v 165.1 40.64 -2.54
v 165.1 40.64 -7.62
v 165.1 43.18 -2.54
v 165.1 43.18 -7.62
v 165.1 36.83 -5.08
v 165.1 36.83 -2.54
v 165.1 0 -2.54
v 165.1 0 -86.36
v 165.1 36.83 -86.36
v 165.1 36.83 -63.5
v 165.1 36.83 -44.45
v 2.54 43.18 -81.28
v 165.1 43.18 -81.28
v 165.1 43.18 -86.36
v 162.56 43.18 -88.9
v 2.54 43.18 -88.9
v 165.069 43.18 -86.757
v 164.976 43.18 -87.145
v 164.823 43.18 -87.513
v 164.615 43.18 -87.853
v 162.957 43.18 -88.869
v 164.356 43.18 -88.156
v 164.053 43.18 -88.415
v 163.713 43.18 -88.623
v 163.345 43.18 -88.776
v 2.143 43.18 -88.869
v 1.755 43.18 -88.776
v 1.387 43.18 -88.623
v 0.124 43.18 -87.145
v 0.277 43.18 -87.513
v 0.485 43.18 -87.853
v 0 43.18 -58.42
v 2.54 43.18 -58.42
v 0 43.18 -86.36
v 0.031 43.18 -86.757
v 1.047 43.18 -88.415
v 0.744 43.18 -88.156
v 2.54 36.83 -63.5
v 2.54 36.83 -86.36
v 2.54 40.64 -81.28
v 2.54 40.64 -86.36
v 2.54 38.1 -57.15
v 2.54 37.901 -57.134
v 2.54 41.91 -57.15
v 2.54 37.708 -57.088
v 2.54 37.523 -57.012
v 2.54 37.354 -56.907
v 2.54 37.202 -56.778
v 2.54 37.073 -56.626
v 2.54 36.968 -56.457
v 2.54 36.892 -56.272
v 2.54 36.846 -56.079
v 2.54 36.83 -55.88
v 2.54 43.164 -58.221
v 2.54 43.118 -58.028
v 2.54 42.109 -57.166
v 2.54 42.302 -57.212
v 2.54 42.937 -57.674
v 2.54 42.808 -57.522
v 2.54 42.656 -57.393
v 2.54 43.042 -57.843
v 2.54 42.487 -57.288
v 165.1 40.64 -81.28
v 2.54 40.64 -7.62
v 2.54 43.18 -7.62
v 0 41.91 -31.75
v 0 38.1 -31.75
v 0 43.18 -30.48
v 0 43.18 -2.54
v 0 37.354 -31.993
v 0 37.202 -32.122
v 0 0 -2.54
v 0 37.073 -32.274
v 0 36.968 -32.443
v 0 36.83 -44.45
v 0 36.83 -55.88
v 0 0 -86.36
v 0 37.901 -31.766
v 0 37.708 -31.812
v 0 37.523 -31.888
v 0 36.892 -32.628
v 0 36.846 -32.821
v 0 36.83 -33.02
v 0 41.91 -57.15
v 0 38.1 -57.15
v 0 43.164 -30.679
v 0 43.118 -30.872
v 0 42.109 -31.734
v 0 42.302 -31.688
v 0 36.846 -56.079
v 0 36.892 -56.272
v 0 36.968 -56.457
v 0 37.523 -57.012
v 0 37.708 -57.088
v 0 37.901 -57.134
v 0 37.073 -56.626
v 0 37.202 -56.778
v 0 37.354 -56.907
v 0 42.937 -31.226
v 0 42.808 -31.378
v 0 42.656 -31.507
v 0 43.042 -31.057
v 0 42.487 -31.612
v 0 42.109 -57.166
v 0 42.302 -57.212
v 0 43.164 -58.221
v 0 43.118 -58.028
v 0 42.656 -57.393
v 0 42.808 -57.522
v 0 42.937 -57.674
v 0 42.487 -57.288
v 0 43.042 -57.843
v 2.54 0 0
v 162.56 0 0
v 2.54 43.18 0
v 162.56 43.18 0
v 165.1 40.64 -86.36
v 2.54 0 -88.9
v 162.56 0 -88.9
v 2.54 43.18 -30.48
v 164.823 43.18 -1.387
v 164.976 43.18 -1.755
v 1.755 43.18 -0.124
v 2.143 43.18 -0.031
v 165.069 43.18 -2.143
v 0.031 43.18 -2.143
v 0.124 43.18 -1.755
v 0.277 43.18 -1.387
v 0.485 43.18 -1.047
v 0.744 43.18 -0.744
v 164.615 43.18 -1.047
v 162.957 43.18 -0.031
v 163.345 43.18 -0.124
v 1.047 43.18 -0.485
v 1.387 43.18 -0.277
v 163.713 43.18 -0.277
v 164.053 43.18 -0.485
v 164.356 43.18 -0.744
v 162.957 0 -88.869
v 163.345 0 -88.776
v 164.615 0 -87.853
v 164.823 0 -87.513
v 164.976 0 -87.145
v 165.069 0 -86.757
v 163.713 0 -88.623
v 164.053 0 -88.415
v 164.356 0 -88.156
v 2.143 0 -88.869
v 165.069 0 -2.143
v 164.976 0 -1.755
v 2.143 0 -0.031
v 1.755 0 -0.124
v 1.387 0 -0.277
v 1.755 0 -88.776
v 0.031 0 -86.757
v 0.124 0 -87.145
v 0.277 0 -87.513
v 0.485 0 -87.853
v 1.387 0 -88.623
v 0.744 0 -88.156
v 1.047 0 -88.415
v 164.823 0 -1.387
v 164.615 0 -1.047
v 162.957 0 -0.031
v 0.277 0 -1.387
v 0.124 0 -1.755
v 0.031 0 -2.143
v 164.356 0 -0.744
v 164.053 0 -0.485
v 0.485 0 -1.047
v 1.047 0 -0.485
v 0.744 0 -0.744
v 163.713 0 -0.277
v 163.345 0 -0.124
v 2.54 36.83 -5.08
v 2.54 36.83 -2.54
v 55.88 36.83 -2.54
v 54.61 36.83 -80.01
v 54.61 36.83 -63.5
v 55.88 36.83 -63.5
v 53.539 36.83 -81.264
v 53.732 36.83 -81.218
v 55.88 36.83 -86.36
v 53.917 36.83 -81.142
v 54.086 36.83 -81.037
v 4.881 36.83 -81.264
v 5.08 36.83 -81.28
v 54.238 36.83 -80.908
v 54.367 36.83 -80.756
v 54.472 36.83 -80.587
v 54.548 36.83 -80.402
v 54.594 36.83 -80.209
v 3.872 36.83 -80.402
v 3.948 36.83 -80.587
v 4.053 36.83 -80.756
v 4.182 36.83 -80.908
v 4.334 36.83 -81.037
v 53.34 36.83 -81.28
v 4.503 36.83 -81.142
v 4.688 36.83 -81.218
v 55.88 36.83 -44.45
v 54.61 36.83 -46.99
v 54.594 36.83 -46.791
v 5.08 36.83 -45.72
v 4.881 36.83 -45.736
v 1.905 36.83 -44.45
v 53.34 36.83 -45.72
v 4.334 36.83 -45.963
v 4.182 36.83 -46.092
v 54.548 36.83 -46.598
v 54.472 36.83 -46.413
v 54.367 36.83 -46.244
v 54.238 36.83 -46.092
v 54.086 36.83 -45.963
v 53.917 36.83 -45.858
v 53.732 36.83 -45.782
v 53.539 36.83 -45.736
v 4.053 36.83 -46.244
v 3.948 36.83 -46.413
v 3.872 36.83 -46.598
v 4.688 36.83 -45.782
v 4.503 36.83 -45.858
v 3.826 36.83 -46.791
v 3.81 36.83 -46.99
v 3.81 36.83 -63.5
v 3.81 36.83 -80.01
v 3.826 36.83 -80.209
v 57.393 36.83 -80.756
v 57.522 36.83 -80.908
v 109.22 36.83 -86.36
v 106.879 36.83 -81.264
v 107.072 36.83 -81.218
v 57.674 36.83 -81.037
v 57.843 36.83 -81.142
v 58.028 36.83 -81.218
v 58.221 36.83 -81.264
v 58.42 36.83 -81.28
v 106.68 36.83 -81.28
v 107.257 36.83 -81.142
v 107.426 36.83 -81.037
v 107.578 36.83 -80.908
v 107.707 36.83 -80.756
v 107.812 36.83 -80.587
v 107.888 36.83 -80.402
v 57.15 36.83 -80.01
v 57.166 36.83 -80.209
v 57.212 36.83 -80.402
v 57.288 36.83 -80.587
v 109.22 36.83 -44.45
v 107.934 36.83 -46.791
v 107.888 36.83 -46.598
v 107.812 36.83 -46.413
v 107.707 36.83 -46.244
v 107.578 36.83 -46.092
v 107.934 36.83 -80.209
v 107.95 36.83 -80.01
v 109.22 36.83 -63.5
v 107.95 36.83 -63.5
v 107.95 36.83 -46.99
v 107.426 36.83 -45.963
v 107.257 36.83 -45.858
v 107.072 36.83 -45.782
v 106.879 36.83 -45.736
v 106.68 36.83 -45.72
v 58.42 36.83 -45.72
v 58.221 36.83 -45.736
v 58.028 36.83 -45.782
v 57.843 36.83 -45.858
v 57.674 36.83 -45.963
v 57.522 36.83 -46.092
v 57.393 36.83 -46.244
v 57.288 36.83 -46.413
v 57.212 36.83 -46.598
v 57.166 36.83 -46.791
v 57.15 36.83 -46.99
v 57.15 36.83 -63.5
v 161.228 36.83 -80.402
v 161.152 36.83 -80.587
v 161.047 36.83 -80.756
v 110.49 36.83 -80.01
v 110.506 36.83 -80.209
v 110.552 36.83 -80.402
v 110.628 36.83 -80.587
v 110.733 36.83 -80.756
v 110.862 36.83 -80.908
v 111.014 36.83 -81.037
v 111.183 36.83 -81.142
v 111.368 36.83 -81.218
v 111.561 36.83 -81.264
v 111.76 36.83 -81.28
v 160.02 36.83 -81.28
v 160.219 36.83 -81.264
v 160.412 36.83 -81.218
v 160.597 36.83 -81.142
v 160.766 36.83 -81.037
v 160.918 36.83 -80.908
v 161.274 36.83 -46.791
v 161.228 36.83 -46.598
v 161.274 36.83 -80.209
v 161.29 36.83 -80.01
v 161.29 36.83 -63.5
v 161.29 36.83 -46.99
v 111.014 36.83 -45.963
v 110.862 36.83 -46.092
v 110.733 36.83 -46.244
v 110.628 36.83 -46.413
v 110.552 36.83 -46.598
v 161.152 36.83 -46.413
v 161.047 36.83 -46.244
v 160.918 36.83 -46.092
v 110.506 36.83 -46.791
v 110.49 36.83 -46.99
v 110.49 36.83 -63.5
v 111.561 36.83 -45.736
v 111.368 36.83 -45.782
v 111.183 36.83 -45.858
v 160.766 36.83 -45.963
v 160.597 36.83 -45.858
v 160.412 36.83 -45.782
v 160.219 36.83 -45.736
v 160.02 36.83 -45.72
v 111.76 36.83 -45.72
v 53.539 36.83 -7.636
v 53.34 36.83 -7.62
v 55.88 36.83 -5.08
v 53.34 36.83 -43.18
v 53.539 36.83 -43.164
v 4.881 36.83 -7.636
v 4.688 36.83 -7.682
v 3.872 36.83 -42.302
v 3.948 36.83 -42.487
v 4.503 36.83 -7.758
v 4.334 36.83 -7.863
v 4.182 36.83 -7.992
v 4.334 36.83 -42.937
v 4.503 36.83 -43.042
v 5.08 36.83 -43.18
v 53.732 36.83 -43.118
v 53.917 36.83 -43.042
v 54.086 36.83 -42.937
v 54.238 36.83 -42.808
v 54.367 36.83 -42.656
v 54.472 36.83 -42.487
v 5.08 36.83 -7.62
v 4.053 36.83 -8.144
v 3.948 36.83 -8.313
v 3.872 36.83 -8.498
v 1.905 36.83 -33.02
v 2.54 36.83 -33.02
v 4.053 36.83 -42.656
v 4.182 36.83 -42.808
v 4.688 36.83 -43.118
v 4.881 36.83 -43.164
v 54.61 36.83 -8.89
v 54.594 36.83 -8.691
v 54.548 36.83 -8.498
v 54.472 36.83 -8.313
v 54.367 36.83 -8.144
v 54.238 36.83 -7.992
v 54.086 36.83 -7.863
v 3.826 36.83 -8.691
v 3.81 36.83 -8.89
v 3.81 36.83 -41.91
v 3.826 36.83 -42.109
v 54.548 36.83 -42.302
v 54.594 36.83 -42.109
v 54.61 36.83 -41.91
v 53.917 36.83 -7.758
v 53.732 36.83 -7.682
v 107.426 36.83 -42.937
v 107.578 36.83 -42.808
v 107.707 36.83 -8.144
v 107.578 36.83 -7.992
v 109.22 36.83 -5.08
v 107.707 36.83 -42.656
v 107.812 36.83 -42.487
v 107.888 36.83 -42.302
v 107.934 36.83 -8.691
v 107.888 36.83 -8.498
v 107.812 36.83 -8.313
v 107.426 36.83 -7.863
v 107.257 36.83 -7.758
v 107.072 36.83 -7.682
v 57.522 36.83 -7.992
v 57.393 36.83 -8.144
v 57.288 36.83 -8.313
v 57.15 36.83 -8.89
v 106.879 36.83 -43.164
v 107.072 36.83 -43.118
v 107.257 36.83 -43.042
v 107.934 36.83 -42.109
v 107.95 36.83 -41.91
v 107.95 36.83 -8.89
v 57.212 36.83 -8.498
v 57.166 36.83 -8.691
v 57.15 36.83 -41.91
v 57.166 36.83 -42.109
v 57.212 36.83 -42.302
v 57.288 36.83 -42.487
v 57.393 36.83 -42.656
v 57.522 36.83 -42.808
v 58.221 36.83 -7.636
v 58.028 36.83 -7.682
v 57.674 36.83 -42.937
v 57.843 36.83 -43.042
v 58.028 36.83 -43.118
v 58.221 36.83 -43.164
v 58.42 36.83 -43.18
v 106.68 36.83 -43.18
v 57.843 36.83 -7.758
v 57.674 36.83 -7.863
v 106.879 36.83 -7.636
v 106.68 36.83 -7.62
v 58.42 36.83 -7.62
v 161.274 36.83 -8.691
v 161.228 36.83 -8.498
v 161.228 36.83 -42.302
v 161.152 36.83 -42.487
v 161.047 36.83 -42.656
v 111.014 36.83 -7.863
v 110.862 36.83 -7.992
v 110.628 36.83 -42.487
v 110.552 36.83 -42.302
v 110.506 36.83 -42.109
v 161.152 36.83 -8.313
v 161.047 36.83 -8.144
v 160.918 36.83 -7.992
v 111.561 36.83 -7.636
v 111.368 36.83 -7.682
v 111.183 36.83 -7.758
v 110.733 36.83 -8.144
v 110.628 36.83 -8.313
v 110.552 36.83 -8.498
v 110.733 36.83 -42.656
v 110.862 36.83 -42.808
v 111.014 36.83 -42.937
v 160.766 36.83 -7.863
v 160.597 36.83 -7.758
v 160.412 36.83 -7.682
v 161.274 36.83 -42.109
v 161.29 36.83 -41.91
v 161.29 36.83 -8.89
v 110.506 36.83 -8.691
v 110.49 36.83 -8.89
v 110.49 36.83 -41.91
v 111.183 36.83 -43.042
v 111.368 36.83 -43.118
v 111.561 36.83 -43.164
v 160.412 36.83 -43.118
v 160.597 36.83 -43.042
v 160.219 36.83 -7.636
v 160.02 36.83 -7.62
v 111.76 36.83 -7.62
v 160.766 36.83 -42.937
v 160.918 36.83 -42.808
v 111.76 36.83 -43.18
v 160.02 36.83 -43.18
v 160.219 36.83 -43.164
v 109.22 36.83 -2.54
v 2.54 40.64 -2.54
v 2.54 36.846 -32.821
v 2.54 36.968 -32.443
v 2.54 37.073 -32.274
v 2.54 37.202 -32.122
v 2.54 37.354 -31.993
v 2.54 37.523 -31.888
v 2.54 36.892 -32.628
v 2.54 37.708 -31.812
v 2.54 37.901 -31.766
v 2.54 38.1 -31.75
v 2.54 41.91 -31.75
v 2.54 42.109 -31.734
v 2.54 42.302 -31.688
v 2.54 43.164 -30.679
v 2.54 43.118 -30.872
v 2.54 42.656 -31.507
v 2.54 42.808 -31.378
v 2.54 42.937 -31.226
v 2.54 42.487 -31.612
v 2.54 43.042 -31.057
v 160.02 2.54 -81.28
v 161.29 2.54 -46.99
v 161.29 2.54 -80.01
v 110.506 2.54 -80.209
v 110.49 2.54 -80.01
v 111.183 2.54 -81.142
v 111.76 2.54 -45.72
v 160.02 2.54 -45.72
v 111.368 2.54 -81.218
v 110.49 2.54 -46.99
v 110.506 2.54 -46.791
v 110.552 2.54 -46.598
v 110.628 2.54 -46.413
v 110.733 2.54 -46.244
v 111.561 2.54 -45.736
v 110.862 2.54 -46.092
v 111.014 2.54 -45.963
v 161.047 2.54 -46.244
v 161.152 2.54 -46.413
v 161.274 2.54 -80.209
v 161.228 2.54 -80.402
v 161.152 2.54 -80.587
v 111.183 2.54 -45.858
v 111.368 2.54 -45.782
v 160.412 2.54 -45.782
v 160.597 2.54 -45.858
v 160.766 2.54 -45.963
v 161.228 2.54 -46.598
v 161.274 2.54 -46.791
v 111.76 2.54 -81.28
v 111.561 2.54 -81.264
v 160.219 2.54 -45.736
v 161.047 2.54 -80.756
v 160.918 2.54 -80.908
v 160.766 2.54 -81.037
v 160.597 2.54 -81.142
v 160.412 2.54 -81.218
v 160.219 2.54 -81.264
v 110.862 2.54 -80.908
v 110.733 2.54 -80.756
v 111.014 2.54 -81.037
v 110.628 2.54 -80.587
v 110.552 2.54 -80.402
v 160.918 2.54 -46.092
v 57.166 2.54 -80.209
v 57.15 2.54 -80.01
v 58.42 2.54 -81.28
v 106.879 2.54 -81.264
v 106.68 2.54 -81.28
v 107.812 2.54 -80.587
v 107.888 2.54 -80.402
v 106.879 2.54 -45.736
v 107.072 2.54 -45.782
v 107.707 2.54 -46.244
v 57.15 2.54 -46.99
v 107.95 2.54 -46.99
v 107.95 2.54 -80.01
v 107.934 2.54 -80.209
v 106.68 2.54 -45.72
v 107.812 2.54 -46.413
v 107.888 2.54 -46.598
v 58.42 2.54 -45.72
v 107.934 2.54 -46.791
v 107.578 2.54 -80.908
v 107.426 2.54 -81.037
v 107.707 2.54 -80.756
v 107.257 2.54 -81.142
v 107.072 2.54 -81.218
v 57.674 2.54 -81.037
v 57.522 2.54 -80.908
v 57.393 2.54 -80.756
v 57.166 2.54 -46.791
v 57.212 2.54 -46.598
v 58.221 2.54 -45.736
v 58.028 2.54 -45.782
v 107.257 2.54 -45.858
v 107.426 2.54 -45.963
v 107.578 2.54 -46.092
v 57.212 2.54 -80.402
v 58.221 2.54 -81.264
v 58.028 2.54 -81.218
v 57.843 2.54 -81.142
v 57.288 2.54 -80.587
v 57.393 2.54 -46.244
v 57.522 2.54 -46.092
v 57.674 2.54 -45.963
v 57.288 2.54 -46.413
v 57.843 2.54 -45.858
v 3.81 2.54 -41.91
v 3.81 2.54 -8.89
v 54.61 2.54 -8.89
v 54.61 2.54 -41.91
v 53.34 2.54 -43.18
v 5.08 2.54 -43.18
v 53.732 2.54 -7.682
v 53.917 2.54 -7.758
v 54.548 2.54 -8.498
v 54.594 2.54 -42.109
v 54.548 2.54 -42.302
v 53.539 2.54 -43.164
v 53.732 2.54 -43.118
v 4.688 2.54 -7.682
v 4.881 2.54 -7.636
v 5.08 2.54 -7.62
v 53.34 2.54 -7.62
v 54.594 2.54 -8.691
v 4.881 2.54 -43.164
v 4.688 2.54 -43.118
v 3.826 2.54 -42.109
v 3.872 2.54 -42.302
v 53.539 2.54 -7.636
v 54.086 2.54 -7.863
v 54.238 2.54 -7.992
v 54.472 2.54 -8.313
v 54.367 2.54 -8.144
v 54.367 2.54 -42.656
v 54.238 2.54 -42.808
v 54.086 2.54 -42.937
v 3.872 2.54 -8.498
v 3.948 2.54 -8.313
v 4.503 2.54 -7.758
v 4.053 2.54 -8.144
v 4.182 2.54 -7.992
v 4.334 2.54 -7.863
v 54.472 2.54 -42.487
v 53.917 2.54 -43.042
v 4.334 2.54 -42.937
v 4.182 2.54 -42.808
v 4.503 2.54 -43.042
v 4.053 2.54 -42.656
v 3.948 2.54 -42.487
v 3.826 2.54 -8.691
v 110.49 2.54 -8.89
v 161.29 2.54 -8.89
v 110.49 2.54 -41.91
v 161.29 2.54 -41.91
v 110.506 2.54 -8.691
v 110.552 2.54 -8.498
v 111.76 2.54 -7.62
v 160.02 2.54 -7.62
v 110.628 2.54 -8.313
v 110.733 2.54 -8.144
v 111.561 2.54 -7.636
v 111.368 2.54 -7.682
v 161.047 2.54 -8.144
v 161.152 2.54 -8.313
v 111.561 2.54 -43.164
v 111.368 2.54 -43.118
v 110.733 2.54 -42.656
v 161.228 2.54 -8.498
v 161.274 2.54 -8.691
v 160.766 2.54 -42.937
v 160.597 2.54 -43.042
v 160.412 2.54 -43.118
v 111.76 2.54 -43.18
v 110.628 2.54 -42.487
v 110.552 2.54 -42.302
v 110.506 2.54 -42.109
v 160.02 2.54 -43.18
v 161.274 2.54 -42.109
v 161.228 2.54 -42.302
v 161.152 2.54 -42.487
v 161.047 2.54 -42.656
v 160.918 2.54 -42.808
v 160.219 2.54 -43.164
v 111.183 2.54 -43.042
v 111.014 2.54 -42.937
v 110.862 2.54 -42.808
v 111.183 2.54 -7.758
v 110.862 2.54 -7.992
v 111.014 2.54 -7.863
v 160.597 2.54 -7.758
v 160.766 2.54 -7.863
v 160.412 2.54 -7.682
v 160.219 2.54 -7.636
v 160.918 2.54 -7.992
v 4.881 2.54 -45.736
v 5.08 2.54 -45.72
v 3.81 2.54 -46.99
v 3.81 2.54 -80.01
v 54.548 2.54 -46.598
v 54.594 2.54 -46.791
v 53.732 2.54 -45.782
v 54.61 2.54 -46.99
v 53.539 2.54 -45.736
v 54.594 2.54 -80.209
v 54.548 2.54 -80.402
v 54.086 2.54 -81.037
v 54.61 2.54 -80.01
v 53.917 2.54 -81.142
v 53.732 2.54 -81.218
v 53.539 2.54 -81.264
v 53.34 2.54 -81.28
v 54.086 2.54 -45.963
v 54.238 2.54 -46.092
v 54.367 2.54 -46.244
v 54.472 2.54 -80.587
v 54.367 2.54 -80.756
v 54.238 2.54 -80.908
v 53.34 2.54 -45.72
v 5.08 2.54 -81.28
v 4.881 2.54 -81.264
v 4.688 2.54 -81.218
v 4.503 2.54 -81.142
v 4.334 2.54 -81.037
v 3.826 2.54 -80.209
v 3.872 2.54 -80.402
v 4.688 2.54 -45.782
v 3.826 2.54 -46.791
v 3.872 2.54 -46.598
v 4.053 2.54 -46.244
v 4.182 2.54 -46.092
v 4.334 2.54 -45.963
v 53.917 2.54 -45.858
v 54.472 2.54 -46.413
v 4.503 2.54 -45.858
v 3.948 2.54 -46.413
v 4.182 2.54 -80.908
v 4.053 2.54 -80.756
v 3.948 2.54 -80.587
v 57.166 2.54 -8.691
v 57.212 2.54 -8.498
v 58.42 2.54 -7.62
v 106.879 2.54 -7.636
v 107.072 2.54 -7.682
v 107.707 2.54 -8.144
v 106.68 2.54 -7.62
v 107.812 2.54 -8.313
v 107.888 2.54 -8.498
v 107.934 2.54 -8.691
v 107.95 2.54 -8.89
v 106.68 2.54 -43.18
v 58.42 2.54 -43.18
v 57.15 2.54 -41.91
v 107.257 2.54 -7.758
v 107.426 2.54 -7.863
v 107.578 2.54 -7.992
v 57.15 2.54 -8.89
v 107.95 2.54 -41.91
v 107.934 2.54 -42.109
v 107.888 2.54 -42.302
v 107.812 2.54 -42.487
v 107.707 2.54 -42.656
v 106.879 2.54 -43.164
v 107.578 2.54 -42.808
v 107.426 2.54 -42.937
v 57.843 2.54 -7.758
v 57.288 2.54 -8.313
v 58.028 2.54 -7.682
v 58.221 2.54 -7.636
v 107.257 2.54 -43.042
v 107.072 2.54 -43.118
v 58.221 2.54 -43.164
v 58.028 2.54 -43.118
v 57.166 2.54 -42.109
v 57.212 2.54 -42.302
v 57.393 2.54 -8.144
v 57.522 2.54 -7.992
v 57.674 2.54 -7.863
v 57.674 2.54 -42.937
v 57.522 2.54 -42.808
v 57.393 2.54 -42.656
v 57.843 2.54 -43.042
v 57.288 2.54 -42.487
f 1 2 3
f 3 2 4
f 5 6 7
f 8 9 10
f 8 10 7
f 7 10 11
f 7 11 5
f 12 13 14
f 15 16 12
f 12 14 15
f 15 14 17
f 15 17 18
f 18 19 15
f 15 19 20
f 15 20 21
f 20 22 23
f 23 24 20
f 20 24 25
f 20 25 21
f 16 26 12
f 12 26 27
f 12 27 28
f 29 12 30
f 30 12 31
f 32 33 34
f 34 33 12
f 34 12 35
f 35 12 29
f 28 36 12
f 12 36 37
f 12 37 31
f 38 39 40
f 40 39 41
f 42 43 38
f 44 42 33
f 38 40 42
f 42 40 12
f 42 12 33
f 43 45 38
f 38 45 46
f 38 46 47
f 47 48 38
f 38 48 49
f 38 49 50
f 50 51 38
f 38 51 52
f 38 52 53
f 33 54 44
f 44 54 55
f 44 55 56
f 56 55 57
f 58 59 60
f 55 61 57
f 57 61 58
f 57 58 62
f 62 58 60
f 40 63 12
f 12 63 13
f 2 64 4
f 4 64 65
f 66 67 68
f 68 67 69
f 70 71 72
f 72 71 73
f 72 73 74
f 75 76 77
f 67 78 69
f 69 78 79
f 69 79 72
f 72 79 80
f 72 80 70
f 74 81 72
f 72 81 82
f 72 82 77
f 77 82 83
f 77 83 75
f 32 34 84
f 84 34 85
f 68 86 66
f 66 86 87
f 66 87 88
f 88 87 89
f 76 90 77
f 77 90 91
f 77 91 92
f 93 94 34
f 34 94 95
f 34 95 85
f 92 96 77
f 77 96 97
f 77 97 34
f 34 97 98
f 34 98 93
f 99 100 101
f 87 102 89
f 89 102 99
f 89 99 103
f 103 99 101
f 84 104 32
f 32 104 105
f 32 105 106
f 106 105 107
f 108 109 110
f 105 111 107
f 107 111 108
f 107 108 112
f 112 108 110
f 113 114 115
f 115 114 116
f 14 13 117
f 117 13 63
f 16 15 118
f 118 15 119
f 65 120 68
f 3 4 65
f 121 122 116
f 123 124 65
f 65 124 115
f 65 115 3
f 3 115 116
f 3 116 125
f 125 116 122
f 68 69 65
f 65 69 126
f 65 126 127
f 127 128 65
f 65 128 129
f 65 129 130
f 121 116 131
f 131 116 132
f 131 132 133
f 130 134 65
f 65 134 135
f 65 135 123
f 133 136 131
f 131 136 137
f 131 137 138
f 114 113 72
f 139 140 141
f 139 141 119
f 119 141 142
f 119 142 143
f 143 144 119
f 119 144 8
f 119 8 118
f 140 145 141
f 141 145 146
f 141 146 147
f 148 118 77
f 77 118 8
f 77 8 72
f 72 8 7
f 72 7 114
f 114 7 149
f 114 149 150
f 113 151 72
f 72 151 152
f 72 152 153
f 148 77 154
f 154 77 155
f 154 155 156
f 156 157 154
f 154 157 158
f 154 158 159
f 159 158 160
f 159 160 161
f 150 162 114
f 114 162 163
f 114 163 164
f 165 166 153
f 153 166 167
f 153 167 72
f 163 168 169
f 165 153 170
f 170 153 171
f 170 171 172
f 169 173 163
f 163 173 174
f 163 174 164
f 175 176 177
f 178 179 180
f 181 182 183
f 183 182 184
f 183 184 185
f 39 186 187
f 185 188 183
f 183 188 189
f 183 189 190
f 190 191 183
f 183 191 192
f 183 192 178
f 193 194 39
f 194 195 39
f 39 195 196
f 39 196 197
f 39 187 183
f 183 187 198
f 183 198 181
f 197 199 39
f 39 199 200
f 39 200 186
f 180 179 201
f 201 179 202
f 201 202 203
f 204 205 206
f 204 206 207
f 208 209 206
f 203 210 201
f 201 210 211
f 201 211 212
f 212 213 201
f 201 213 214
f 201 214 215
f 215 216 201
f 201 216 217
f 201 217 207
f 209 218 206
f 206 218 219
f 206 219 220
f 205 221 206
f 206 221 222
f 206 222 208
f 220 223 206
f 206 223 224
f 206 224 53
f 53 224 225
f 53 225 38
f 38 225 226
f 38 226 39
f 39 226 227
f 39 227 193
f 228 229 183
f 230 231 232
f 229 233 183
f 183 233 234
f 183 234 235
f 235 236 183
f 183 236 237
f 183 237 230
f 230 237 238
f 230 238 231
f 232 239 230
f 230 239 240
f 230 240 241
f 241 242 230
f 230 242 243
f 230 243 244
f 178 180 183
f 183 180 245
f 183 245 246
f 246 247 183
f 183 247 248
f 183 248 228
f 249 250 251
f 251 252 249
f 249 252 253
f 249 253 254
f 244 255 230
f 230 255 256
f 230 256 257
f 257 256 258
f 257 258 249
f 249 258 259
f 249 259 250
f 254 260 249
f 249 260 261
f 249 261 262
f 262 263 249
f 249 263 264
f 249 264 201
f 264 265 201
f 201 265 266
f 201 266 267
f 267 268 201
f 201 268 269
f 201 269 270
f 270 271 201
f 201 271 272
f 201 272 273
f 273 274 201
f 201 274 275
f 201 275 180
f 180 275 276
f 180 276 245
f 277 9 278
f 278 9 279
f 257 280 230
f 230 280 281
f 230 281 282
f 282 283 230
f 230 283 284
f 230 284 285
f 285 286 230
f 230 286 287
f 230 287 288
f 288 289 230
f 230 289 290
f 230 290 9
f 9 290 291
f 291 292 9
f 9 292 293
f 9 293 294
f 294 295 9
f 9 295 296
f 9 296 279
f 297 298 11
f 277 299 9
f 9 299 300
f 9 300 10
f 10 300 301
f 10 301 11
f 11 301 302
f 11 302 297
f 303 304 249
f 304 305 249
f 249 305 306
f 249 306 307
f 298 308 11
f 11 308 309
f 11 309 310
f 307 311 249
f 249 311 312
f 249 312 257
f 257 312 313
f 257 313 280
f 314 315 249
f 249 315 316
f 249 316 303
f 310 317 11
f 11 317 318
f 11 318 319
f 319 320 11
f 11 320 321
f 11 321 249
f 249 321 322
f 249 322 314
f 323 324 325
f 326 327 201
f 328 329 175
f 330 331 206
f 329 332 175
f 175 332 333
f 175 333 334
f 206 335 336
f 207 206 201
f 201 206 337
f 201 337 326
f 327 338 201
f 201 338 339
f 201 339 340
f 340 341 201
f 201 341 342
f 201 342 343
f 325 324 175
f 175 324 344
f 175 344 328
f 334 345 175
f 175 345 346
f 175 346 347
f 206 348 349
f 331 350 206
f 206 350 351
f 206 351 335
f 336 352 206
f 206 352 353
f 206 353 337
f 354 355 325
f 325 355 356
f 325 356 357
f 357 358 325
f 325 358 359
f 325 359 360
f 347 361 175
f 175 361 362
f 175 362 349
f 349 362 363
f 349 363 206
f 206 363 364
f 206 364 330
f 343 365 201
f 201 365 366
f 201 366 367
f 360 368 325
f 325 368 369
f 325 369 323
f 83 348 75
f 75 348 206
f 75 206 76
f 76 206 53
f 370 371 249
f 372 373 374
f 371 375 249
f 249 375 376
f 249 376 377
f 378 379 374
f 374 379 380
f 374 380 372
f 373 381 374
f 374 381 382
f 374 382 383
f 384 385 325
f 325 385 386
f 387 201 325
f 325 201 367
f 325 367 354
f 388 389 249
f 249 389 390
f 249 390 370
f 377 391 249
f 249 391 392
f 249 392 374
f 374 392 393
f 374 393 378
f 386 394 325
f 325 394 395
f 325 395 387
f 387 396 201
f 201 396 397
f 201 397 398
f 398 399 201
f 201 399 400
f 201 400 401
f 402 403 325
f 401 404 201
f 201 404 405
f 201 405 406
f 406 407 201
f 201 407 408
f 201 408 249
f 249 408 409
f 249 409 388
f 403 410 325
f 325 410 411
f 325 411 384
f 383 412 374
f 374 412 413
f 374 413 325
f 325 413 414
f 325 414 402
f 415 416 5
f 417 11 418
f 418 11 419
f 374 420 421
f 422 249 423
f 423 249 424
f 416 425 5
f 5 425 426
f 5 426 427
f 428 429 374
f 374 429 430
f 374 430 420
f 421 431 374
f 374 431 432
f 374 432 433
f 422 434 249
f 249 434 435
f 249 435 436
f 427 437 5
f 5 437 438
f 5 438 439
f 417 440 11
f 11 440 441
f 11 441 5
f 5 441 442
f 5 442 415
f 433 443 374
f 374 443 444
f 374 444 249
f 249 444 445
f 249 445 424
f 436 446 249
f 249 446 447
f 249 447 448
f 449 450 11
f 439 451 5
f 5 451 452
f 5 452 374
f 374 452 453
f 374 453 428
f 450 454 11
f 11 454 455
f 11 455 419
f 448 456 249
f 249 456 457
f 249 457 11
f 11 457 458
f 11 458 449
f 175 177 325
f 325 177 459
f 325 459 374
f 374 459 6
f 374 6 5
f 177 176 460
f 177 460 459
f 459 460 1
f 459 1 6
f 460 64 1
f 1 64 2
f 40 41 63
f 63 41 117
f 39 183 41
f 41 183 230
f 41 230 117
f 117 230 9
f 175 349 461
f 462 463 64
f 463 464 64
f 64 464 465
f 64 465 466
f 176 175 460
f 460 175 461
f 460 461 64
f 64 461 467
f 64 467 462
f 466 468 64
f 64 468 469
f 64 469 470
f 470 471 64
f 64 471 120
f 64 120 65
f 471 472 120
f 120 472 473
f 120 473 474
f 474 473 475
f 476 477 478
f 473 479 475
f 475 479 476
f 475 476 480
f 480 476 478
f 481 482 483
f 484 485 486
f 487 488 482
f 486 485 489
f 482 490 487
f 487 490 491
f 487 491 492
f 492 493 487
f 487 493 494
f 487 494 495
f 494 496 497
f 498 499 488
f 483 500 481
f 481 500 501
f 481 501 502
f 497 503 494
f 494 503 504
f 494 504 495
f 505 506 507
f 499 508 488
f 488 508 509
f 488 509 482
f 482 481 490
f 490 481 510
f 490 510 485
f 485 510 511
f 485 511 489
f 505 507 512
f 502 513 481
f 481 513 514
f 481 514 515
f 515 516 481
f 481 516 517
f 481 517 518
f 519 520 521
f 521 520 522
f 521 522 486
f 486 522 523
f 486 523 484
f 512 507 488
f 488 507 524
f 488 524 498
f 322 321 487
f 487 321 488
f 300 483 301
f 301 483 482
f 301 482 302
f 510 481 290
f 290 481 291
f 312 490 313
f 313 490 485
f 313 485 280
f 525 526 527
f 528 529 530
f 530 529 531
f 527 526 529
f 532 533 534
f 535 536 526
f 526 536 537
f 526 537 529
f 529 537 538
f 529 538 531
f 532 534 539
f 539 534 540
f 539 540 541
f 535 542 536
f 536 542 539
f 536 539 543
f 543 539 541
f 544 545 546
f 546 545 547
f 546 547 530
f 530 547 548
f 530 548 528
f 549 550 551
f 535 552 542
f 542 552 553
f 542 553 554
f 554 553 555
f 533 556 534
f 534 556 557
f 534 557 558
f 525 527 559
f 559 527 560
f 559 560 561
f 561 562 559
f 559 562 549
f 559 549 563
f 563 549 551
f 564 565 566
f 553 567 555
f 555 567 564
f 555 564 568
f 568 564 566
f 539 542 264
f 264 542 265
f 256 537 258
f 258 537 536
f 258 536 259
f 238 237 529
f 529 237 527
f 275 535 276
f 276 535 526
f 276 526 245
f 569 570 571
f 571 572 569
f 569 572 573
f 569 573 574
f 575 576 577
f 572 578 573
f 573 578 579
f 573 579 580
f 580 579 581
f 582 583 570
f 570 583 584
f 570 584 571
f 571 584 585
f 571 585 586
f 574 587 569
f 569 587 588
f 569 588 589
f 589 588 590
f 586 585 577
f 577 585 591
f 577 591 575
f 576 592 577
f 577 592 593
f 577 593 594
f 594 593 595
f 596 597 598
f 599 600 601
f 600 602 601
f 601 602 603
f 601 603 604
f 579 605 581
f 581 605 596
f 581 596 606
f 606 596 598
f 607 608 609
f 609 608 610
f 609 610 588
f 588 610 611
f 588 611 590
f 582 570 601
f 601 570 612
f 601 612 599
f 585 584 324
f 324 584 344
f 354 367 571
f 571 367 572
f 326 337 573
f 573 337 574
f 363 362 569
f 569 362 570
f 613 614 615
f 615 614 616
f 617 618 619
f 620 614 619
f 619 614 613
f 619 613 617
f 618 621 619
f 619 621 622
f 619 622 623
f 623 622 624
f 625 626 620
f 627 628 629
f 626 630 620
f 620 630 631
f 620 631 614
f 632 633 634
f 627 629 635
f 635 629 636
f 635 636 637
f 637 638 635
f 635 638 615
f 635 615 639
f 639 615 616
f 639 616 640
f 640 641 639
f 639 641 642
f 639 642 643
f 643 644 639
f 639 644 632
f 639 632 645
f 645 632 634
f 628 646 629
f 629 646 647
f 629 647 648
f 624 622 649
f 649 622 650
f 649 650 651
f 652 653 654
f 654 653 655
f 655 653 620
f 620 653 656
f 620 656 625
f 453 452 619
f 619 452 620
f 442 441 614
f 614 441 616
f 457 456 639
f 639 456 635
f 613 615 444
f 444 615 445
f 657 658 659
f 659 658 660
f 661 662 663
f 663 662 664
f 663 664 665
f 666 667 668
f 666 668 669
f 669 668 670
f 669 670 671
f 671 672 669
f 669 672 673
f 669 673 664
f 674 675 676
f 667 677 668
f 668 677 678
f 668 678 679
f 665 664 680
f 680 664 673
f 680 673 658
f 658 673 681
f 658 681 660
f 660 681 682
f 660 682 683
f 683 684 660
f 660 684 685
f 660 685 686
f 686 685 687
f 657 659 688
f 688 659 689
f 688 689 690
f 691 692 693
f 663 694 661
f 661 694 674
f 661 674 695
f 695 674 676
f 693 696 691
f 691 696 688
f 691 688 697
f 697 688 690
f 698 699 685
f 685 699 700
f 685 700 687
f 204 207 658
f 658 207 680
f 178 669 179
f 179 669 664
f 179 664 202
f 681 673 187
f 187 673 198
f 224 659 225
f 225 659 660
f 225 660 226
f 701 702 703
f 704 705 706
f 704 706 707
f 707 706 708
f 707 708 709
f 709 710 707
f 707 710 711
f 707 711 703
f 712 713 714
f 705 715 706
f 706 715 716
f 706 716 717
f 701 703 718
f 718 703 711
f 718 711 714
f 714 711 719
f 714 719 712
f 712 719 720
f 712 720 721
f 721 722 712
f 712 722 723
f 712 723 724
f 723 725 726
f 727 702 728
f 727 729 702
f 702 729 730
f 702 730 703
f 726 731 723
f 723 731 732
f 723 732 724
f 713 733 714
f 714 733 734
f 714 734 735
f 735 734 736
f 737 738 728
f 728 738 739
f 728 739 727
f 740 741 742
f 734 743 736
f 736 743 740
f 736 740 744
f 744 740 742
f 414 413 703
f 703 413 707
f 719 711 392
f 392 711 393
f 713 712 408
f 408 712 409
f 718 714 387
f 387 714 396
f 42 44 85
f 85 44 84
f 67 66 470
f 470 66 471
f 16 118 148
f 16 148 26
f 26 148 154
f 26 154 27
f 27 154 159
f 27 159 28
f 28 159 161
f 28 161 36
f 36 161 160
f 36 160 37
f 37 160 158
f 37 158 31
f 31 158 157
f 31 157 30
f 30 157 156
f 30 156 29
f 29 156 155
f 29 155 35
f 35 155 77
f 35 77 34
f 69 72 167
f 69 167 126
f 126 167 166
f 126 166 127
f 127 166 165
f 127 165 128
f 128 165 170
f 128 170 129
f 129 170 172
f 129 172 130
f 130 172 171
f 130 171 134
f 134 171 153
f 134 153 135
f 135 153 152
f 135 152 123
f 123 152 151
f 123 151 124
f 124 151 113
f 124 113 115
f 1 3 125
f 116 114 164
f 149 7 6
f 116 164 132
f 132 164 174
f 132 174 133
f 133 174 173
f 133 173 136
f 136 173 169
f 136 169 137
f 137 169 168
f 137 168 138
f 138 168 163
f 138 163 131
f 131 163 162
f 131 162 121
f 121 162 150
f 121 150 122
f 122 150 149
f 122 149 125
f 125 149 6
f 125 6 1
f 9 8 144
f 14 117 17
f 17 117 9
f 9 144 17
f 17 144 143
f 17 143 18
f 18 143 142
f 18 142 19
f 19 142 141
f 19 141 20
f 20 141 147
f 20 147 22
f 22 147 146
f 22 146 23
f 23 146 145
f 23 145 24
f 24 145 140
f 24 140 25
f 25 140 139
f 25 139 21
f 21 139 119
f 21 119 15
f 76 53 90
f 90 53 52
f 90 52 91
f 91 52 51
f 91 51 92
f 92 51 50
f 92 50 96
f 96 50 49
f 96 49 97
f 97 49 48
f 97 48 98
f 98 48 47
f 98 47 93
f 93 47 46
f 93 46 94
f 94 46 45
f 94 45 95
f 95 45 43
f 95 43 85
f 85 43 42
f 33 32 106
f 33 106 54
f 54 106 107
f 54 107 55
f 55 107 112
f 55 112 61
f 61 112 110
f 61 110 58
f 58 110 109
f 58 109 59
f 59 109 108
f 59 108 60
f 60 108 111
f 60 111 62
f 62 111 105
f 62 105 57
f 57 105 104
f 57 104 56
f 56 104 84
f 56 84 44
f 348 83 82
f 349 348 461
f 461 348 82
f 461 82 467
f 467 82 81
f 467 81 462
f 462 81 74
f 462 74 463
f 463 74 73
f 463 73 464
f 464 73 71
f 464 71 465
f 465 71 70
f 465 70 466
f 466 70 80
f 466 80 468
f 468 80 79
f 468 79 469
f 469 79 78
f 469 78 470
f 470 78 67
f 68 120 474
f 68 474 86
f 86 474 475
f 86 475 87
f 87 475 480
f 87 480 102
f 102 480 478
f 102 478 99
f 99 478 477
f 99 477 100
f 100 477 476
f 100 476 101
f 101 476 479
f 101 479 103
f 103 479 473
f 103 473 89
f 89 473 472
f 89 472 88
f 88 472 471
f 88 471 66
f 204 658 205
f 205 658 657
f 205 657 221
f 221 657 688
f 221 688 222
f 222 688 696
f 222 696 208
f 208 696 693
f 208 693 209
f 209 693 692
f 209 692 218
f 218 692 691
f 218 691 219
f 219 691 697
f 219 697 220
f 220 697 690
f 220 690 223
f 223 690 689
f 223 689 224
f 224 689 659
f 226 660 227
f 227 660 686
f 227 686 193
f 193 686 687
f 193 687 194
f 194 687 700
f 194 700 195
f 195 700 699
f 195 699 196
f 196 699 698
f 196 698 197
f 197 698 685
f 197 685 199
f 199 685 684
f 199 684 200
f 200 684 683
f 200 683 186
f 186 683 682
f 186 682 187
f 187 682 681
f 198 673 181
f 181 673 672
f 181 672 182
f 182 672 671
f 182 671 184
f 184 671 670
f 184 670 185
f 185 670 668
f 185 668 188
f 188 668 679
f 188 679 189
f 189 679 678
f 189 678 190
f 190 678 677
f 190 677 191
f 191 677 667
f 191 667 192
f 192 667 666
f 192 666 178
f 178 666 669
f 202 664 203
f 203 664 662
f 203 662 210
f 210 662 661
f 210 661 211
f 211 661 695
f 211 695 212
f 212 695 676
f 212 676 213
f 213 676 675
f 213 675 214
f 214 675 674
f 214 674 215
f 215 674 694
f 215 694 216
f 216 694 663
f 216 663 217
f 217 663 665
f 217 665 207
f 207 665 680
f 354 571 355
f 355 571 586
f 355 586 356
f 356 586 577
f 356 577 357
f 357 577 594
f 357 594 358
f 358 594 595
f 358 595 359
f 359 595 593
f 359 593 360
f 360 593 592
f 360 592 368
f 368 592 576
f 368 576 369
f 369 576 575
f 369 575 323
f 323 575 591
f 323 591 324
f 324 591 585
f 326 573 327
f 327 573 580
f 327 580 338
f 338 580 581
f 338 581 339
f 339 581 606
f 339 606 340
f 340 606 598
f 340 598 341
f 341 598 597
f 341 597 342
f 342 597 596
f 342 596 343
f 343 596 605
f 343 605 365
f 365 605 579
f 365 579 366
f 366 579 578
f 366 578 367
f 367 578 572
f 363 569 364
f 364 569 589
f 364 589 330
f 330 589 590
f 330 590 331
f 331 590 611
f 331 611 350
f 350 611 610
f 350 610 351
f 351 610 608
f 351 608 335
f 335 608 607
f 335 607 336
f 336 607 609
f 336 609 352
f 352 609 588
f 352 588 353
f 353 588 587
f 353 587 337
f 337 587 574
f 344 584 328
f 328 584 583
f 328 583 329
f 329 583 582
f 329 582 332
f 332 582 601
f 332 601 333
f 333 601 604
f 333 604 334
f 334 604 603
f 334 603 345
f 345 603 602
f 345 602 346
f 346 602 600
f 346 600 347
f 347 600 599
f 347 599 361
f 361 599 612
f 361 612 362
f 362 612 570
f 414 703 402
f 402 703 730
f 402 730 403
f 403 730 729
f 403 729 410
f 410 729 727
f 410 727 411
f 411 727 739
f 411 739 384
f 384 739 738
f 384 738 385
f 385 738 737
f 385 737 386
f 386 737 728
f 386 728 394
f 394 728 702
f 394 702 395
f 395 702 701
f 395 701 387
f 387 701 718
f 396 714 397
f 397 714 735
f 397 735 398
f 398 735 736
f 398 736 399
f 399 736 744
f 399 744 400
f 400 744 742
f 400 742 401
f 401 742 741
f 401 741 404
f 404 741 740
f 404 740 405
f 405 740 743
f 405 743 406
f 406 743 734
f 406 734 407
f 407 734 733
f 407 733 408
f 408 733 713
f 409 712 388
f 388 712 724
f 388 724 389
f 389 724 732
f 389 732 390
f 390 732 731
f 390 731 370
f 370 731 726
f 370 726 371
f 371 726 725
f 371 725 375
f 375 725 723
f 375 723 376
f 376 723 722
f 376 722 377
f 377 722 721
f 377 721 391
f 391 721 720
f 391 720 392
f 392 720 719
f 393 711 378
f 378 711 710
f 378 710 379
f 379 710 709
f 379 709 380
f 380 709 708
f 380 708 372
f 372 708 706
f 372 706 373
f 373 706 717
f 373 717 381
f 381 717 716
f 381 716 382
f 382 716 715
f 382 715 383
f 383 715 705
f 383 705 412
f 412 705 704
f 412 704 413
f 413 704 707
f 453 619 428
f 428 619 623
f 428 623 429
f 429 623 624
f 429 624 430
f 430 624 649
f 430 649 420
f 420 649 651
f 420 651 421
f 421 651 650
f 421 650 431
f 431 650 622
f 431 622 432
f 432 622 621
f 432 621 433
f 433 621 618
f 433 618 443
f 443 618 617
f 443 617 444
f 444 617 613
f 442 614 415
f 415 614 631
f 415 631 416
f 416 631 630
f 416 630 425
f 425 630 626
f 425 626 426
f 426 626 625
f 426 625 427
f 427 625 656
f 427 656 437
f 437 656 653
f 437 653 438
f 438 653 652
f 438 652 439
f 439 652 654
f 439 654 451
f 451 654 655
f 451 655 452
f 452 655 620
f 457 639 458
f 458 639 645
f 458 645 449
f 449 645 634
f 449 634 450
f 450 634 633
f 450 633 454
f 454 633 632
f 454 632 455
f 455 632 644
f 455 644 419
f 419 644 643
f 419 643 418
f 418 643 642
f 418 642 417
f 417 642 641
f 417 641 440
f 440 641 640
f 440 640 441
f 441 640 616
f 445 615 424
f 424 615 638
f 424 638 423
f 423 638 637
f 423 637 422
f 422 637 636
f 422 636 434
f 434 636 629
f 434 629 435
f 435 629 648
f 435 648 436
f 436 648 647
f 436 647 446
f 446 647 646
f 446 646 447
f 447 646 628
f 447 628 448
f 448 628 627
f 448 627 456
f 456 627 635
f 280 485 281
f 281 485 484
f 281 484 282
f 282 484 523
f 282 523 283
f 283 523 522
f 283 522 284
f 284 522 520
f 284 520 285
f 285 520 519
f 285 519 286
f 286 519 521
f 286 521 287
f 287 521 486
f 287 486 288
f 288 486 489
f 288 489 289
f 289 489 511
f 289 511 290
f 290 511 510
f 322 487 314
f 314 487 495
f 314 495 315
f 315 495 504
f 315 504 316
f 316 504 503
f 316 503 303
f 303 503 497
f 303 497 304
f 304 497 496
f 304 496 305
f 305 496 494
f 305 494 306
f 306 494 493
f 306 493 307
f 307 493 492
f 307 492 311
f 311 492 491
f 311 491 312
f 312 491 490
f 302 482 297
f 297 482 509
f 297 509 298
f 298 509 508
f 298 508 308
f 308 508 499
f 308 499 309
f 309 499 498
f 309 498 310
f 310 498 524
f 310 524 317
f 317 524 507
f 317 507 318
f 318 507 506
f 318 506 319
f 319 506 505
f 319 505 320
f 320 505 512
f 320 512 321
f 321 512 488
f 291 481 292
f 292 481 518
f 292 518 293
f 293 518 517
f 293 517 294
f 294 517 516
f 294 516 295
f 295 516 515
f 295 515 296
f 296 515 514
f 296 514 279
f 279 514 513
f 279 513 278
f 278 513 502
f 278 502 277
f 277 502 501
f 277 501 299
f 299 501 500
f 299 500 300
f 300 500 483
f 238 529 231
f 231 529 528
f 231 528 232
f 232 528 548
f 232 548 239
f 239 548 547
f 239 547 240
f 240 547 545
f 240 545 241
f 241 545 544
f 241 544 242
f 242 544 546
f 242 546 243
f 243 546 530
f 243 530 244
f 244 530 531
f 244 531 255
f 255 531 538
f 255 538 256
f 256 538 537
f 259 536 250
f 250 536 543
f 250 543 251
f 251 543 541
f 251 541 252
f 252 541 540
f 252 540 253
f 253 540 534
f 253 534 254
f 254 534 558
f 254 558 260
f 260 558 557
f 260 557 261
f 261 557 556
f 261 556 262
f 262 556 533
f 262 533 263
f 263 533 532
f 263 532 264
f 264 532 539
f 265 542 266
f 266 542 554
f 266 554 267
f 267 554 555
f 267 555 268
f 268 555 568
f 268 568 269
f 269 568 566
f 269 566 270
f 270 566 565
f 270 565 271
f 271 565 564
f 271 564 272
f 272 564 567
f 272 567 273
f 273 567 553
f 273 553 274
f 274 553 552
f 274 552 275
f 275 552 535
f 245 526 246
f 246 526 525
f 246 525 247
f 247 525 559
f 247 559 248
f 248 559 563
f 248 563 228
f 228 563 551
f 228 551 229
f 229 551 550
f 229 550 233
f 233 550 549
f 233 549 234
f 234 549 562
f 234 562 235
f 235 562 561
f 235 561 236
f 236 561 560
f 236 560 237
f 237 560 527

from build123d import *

# Parameters (mm, degrees)
SKETCH1_W           = 165.1
SKETCH1_H           = 88.9
BOSS_EXTRUDE1_DEPTH = 43.18
SKETCH2_W           = 50.8
SKETCH2_H           = 35.56
CUT_EXTRUDE1_DEPTH  = 40.64
CUT_EXTRUDE2_DEPTH  = 162.56
SKETCH4_W           = 2.54
SKETCH4_H           = 25.4
CUT_EXTRUDE3_DEPTH  = 6.35
FILLET1_START       = -1
FILLET1_DEPTH       = 45
FILLET2_R           = 1.27


with BuildPart() as part:
    # Sketch1 → Boss-Extrude1 (new body)
    with BuildSketch(Plane(origin=(0, 0, 0), x_dir=(1, 0, 0), z_dir=(0, 1, 0))):
        with Locations((82.55, 44.45)):
            Rectangle(SKETCH1_W, SKETCH1_H)
    extrude(amount=BOSS_EXTRUDE1_DEPTH)

    # Sketch2 → Cut-Extrude1 (cut)
    with BuildSketch(Plane(origin=(0, 43.18, 0), x_dir=(1, 0, 0), z_dir=(0, 1, 0))):
        with Locations((29.21, 63.5)):
            Rectangle(SKETCH2_W, SKETCH2_H)
        with Locations((29.21, 25.4)):
            Rectangle(SKETCH2_W, SKETCH2_H)
        with Locations((82.55, 63.5)):
            Rectangle(SKETCH2_W, SKETCH2_H)
        with Locations((135.89, 63.5)):
            Rectangle(SKETCH2_W, SKETCH2_H)
        with Locations((135.89, 25.4)):
            Rectangle(SKETCH2_W, SKETCH2_H)
        with Locations((82.55, 25.4)):
            Rectangle(SKETCH2_W, SKETCH2_H)
    extrude(amount=-CUT_EXTRUDE1_DEPTH, mode=Mode.SUBTRACT)

    # Sketch3 → Cut-Extrude2 (cut)
    with BuildSketch(Plane(origin=(165.1, 0, 0), x_dir=(0, 0, -1), z_dir=(1, 0, 0))):
        Polygon((2.54, 40.64), (7.62, 40.64), (7.62, 43.18), (81.28, 43.18), (81.28, 40.64), (86.36, 40.64), (86.36, 36.83), (2.54, 36.83), align=None)
    extrude(amount=-CUT_EXTRUDE2_DEPTH, mode=Mode.SUBTRACT)

    # Sketch4 → Cut-Extrude3 (cut)
    with BuildSketch(Plane(origin=(0, 43.18, 0), x_dir=(1, 0, 0), z_dir=(0, 1, 0))):
        with Locations((1.27, 44.45)):
            Rectangle(SKETCH4_W, SKETCH4_H)
    extrude(amount=-CUT_EXTRUDE3_DEPTH, mode=Mode.SUBTRACT)

    # Fillet1: read off the stored shape, not the designer's step
    # Fillet1 outline → Fillet1 (cut)
    with BuildSketch(Plane(origin=(0, 0, 0), x_dir=(1, 0, 0), z_dir=(0, 1, 0)).offset(FILLET1_START)):
        with BuildLine():
            Line((0, 88.9), (0, 86.36))
            ThreePointArc((0, 86.36), (0.743948776, 88.156051224), (2.54, 88.9))
            Line((2.54, 88.9), (0, 88.9))
        make_face()
        with BuildLine():
            ThreePointArc((2.54, 0), (0.743948776, 0.743948776), (0, 2.54))
            Line((0, 2.54), (0, 0))
            Line((0, 0), (2.54, 0))
        make_face()
        with BuildLine():
            Line((165.1, 88.9), (162.56, 88.9))
            ThreePointArc((162.56, 88.9), (164.356051224, 88.156051224), (165.1, 86.36))
            Line((165.1, 86.36), (165.1, 88.9))
        make_face()
        with BuildLine():
            ThreePointArc((165.1, 2.54), (164.356051224, 0.743948776), (162.56, 0))
            Line((162.56, 0), (165.1, 0))
            Line((165.1, 0), (165.1, 2.54))
        make_face()
    extrude(amount=FILLET1_DEPTH, mode=Mode.SUBTRACT)

    # Fillet2
    fillet2_edges = [part.edges().sort_by_distance(p)[0] for p in [
        (1.27, 36.83, -57.15),
        (1.27, 36.83, -31.75),
        (1.27, 43.18, -31.75),
        (1.27, 43.18, -57.15),
        (57.15, 19.685, -7.62),
        (57.15, 19.685, -43.18),
        (107.95, 19.685, -43.18),
        (107.95, 19.685, -7.62),
        (110.49, 19.685, -45.72),
        (110.49, 19.685, -81.28),
        (161.29, 19.685, -81.28),
        (161.29, 19.685, -45.72),
        (57.15, 19.685, -45.72),
        (57.15, 19.685, -81.28),
        (107.95, 19.685, -81.28),
        (107.95, 19.685, -45.72),
        (3.81, 19.685, -7.62),
        (3.81, 19.685, -43.18),
        (54.61, 19.685, -43.18),
        (54.61, 19.685, -7.62),
        (110.49, 19.685, -7.62),
        (110.49, 19.685, -43.18),
        (161.29, 19.685, -43.18),
        (161.29, 19.685, -7.62),
        (3.81, 19.685, -45.72),
        (3.81, 19.685, -81.28),
        (54.61, 19.685, -81.28),
        (54.61, 19.685, -45.72),
    ]]
    fillet(fillet2_edges, radius=FILLET2_R)


solid = part.part
